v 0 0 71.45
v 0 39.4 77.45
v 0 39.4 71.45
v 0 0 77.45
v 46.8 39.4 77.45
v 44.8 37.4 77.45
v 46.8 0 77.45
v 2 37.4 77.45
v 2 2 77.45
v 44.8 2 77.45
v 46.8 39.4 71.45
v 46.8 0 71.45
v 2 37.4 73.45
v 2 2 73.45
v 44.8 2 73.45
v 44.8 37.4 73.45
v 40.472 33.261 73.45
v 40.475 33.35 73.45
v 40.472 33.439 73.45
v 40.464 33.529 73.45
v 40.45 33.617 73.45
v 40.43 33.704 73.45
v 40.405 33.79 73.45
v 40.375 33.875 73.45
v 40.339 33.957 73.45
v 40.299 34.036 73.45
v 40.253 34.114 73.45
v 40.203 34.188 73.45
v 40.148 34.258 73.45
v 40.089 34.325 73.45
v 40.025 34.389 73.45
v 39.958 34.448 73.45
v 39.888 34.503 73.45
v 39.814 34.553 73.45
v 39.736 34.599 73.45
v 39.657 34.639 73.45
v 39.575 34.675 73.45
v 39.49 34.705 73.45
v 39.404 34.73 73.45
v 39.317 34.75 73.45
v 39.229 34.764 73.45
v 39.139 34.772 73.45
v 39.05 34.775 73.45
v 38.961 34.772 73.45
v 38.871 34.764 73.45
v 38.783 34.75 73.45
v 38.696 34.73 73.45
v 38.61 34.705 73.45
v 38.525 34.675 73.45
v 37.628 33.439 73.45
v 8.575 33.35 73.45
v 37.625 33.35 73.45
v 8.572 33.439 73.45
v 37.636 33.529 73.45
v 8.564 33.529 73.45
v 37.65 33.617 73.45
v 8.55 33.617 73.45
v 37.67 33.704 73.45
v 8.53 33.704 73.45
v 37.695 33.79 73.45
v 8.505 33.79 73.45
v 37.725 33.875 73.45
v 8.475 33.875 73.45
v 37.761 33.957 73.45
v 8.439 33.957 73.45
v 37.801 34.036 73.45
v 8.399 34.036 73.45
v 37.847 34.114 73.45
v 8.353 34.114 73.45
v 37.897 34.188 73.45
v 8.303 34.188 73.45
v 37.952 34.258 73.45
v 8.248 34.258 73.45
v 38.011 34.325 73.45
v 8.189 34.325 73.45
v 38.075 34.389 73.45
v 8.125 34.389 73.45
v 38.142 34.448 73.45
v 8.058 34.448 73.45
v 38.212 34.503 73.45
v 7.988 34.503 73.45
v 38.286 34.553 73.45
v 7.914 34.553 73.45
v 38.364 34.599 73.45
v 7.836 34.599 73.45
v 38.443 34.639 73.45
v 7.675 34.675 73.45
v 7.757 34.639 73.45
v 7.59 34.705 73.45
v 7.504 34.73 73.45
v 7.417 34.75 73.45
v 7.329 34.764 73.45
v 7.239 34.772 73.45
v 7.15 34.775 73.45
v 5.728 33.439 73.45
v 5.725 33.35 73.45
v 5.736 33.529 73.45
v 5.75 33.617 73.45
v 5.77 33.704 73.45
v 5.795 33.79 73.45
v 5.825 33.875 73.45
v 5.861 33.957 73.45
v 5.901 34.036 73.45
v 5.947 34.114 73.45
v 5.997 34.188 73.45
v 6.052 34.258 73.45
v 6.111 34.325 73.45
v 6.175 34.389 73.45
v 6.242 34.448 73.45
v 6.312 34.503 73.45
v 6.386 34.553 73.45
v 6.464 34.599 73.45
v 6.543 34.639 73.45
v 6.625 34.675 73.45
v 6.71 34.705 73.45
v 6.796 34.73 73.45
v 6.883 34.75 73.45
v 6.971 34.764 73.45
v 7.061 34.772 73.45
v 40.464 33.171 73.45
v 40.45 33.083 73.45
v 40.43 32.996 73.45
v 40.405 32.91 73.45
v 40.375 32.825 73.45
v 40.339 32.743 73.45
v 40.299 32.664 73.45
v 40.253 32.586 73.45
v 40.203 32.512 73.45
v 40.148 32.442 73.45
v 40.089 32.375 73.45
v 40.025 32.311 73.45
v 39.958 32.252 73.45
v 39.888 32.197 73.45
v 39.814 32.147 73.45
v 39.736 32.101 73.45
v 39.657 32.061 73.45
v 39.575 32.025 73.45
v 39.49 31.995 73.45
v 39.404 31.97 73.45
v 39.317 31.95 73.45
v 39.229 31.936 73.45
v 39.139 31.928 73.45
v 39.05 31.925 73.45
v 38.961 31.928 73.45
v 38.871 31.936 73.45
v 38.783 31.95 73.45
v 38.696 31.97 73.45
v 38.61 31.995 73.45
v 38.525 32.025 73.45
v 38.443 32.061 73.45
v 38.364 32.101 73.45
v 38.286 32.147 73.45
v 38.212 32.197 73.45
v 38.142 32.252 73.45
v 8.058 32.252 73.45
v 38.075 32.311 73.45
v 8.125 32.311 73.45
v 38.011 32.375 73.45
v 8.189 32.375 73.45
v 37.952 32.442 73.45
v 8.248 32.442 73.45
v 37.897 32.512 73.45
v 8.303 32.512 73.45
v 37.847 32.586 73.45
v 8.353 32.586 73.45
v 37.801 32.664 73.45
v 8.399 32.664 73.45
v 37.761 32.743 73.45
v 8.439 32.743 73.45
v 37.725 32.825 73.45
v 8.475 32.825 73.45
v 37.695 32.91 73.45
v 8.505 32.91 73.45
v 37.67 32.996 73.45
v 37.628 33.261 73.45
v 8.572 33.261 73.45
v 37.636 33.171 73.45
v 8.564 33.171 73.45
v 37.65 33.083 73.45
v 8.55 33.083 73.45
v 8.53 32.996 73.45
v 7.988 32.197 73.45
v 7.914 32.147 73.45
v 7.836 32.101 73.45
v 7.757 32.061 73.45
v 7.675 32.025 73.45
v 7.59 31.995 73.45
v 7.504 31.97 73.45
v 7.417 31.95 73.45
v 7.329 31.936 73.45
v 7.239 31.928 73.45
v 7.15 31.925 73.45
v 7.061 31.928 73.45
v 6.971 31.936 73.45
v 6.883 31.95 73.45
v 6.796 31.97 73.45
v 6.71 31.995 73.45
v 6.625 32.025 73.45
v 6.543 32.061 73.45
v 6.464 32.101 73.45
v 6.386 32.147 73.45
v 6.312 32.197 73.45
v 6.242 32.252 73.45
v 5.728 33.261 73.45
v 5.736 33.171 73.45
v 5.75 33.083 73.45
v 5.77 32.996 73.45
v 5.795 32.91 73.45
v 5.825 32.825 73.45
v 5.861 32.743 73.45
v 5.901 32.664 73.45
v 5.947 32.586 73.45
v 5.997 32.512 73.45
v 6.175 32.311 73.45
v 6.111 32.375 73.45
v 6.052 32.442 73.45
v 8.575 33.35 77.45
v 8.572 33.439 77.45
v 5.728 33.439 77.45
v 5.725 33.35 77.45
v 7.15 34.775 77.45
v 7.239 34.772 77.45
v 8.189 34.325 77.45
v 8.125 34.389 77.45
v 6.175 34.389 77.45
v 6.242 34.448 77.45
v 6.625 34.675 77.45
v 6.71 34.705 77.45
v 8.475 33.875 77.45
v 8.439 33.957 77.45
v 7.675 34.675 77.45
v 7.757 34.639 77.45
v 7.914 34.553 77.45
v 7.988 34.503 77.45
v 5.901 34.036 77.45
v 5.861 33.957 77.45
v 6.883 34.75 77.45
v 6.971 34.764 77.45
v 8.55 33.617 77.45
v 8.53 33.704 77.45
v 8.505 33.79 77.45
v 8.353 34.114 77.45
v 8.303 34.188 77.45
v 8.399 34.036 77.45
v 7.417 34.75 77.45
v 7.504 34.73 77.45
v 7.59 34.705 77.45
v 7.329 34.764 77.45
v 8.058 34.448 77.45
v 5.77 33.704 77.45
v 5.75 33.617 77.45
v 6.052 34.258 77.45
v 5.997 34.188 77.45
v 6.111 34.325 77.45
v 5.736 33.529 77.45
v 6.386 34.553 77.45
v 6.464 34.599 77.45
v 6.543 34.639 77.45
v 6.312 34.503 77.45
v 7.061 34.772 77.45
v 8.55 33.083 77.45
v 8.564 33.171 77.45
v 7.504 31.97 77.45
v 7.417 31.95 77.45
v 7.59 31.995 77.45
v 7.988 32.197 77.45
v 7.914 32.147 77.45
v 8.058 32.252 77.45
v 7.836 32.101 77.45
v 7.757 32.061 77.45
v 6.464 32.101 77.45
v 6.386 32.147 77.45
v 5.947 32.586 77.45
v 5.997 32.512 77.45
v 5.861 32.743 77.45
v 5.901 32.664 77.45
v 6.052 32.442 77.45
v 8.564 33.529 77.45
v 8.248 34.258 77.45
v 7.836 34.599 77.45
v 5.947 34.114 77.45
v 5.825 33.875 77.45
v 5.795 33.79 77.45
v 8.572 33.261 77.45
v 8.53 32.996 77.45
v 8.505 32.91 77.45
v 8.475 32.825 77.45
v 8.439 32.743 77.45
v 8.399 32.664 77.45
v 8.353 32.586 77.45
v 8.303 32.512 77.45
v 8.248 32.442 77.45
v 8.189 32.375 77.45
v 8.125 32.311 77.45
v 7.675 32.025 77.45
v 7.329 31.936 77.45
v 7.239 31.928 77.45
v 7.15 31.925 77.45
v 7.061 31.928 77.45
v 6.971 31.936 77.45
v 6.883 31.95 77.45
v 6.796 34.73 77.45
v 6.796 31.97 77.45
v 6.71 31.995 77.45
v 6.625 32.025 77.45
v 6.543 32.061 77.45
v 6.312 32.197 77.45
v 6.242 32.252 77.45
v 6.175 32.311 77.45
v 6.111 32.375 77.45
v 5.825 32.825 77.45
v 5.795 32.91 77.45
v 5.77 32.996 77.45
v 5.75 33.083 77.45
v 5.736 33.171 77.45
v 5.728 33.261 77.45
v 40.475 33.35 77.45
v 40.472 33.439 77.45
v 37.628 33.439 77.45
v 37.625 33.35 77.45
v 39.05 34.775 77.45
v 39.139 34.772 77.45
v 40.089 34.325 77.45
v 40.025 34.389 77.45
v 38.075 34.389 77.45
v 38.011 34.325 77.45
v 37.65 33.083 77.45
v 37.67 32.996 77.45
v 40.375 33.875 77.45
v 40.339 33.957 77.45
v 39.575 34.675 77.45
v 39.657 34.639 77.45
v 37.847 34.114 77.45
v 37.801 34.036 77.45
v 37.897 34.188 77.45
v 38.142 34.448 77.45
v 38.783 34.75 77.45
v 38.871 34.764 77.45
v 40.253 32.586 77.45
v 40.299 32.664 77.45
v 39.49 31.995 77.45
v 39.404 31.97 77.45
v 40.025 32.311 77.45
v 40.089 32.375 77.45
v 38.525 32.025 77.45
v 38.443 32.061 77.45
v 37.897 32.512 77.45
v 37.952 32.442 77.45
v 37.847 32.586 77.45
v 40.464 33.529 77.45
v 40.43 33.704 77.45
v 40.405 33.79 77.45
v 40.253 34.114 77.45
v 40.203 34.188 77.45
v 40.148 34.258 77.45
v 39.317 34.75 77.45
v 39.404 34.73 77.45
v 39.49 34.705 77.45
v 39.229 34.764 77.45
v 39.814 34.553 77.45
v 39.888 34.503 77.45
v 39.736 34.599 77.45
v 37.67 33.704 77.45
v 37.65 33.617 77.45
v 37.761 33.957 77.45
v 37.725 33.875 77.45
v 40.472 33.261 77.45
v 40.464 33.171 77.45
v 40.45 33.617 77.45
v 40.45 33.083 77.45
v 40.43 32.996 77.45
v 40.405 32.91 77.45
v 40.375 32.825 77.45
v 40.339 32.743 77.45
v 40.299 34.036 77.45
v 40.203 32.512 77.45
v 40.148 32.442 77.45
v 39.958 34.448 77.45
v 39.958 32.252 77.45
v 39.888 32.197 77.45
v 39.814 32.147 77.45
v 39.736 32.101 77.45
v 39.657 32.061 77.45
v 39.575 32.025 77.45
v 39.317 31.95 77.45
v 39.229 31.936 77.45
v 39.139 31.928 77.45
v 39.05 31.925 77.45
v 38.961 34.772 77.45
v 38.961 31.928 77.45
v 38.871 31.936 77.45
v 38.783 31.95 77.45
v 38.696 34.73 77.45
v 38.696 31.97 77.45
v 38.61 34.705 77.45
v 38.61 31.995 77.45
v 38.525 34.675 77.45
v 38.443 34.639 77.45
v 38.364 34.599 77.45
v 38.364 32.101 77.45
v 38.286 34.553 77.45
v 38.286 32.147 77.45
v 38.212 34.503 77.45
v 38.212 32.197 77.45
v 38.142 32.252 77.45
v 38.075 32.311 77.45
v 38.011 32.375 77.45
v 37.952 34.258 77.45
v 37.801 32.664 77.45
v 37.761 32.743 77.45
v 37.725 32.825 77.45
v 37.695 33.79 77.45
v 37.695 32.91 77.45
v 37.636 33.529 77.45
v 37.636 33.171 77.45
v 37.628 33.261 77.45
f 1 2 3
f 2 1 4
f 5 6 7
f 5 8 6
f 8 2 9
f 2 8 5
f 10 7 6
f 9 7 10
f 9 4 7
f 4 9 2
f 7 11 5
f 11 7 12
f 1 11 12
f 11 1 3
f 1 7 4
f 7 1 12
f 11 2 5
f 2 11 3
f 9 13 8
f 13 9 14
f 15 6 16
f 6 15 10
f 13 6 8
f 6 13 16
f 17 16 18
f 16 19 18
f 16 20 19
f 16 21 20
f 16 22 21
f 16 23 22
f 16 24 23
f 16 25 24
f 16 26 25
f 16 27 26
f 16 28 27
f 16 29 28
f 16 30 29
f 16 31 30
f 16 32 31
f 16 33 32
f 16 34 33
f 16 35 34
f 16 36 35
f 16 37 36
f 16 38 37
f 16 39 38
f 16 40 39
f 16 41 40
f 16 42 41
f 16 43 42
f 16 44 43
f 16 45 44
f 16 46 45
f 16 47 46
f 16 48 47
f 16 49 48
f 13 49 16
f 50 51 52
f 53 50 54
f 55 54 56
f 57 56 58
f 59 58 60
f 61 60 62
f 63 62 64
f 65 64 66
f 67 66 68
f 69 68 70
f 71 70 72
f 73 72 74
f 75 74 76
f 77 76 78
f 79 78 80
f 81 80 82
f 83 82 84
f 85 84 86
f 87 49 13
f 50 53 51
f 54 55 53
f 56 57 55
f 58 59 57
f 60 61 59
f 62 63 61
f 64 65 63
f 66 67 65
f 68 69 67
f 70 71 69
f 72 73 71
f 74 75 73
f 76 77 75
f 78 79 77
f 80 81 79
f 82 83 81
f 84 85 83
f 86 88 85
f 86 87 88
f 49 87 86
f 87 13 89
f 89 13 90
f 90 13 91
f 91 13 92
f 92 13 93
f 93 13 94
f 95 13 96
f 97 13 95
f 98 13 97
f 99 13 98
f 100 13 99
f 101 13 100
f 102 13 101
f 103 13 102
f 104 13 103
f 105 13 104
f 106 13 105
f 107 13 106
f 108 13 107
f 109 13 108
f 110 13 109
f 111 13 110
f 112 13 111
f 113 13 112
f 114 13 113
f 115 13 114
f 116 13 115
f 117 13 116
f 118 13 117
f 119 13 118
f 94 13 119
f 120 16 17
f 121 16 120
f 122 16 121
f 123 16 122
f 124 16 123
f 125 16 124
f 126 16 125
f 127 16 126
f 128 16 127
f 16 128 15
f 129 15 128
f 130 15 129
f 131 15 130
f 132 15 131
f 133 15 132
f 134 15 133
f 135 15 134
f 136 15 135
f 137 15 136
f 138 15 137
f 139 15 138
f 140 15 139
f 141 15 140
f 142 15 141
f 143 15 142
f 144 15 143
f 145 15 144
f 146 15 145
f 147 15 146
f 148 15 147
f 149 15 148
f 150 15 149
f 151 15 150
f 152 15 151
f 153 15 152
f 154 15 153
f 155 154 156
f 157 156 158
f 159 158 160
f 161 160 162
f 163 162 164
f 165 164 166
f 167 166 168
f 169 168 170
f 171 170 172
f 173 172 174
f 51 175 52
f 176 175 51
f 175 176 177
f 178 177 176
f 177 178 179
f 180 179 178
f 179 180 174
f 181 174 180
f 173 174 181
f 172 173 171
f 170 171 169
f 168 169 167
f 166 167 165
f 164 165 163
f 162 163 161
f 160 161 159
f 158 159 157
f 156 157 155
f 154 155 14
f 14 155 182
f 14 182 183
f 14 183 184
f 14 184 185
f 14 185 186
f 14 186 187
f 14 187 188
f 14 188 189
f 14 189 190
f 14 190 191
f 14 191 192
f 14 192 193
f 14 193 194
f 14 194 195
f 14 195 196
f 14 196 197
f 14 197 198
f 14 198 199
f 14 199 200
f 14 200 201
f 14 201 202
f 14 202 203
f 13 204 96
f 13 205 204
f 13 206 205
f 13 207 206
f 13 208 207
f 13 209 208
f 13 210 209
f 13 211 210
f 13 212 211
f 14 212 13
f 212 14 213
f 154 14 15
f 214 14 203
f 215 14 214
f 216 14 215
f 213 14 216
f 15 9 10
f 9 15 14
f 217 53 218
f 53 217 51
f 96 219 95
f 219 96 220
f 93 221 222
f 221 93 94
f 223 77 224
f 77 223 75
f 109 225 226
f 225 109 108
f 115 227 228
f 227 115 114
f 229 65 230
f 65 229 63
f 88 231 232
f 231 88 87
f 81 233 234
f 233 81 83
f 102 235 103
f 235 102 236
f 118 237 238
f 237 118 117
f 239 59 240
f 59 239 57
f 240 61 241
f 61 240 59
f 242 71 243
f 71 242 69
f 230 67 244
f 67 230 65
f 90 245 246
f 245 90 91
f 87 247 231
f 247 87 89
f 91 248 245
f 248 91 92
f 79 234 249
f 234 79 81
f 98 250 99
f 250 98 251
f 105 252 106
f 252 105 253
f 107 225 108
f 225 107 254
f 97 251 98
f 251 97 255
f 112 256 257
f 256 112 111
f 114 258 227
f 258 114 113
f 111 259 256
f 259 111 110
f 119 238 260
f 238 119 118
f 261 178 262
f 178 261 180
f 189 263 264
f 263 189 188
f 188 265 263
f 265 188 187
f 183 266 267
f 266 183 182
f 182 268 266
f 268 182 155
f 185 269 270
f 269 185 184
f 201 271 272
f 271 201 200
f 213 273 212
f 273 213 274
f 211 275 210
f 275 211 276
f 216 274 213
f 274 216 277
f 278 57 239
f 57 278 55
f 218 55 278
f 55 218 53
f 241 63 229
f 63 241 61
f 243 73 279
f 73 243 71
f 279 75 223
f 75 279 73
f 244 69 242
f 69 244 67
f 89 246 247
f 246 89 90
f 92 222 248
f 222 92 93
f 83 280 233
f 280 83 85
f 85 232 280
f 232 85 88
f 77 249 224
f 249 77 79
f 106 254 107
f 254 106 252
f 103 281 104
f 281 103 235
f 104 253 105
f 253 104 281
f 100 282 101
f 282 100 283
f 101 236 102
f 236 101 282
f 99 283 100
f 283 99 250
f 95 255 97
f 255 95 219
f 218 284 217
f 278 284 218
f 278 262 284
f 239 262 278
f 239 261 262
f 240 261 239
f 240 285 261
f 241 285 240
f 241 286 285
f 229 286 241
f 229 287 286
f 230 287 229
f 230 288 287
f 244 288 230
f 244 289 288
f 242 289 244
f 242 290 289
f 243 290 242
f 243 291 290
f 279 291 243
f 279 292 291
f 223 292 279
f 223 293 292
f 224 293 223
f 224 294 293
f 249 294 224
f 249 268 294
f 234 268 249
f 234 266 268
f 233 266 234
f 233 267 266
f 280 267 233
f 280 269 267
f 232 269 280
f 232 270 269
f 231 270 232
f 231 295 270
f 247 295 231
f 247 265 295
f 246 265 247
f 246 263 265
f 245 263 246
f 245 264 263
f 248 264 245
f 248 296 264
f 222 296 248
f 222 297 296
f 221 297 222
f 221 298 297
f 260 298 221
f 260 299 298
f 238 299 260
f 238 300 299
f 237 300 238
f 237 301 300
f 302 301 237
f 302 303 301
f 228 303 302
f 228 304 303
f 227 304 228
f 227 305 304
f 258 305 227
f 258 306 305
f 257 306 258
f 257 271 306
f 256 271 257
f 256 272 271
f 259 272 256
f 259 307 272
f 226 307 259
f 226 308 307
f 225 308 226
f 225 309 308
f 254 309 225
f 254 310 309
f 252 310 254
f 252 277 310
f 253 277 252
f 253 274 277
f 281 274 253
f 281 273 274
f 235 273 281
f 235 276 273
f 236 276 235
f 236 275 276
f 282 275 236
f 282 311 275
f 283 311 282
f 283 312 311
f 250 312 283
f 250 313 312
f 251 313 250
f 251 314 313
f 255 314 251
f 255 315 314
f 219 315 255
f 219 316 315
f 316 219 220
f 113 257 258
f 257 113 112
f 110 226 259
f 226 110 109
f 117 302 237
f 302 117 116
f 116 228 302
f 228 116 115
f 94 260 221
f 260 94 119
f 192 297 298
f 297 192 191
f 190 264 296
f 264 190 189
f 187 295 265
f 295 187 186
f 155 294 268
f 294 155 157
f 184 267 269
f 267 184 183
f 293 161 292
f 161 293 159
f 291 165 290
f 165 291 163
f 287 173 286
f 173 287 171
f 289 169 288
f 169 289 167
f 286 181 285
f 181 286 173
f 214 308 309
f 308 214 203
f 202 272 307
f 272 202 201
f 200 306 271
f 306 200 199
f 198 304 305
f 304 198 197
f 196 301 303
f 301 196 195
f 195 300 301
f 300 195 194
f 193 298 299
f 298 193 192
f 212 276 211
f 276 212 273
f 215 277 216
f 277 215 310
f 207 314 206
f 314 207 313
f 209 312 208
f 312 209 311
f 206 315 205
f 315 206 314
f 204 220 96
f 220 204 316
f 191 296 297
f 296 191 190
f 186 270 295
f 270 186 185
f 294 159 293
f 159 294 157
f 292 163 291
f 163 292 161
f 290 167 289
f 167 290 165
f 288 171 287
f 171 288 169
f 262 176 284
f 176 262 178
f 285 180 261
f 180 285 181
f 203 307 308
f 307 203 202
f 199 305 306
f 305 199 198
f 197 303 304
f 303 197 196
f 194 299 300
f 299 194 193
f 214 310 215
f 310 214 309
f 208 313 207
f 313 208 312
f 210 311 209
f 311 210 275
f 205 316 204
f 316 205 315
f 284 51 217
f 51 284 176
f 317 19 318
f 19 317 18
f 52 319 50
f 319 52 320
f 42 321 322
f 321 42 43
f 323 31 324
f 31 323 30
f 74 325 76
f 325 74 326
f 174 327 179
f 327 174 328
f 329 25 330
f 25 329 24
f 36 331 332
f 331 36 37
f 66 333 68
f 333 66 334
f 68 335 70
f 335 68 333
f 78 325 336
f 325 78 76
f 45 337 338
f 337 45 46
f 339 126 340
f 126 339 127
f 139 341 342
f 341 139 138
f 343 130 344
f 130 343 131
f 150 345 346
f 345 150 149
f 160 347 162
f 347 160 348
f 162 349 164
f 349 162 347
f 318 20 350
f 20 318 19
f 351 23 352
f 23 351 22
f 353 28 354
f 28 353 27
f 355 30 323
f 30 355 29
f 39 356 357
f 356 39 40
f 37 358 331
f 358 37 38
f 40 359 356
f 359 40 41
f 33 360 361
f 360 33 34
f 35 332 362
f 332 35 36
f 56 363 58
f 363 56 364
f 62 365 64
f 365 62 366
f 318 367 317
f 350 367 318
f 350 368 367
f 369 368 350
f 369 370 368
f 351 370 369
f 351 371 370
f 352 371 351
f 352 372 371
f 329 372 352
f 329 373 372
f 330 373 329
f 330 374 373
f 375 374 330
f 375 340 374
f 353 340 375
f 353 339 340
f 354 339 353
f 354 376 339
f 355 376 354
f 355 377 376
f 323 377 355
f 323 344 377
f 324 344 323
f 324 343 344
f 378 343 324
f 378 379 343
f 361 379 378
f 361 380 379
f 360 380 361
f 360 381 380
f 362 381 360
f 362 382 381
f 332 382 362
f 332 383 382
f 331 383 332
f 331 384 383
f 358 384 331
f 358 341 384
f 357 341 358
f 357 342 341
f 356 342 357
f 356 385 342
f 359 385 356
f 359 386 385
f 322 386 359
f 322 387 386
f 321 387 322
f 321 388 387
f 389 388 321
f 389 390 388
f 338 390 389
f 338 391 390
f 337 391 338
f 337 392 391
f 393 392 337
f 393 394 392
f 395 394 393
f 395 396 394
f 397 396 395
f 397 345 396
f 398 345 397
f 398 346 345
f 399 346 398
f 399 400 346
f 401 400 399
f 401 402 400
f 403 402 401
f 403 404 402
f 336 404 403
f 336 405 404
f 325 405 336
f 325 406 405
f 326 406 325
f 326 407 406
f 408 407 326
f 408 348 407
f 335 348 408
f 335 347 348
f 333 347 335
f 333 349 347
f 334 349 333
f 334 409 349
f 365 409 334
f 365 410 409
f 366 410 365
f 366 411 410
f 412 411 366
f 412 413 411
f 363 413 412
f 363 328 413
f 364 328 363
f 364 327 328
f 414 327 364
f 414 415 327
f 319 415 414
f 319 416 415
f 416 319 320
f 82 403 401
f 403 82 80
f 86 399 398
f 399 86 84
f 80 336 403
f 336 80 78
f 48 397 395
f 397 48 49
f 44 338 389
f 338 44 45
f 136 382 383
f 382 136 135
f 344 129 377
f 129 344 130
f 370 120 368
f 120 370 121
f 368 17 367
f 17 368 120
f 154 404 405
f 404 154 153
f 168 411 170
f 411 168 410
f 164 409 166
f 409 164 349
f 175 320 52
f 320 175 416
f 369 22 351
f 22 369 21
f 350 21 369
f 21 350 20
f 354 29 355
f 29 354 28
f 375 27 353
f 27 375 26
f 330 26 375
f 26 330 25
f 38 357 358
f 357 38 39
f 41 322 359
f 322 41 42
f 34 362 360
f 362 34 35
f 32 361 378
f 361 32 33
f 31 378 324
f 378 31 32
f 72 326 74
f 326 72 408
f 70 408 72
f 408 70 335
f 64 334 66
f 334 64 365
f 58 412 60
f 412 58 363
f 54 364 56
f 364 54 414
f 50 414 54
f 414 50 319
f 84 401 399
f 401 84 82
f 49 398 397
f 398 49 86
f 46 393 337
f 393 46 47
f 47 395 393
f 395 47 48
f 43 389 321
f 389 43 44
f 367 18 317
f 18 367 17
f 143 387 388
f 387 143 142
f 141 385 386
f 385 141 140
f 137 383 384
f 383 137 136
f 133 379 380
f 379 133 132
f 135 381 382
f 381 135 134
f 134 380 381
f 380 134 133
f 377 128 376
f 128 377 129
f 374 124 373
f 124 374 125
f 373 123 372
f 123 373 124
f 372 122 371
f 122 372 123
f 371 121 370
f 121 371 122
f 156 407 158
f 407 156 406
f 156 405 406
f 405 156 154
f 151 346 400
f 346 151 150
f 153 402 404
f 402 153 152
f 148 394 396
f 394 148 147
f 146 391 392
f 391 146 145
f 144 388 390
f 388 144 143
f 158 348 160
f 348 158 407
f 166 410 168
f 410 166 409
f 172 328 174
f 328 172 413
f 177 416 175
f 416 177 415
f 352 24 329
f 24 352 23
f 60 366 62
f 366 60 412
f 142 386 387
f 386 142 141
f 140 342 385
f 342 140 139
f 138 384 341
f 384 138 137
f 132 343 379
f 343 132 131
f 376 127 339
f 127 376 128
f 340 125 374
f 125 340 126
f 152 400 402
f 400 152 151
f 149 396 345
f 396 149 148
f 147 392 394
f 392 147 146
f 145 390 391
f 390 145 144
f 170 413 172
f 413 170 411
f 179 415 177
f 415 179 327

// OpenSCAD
// file: funcArduinoUNO.scad
module funcArduinoUNO(res=10,amais=2.6){
    // ----- ----- ----- Declaração de Variáveis ----- ----- ----- //
    folga1=0.125;

    pcbx=41.8;
    pcbx1=66.5;
    pcbx2=68.65;
    pcby1=2.9;
    pcby2=4.65;
    pcby3=53.55-14.95;
    pcby4=53.55-13.3;
    pcby5=53.55;
    pcbz=1.6;
    pcbr=3.45/2;
    pcbalt=1.6;
    pbcentre=(35+28.8)/2;
    pcbfuro1=3.1+pcbr;

    conx=16.35;
    cony=12.1;
    conz=10.7;
    tCx=-7.8;
    tCy=28.4+3.1;

    alix=14;
    aliy=8.9;
    aliz=11;
    tAx=-4.65;
    tAy=3.1;

    pin1x=20.75;
    pin2x=15.6;
    pin3x=25.8;
    pin4x=20.75;
    piny=2.55;
    pinz=8.55;
    tpin1x=26.7;
    tpin2x=tpin1x+pin1x+2.05;
    tpin3x=18;
    tpin4x=tpin3x+pin3x+0.9;
    tpinbaixoy=1.3;
    tpinaltoy=pcby5-1-piny;

    conectDisspx=9;
    conectDisspy=9;
    conectDisspz=4.55;
    tDsx=2;
    tDsy=2.75;

    conectEDSx=2.35;
    conectEDSy=7.2;
    conectEDSz=2.6;
    tEDSx=2.55;

    conectStepx=9.1;
    conectStepy=9.85;
    conectStepz=5.7;
    tSx=pcbx-conectStepx-0.6;

    conectStep123x=1.45;
    conectStep123y=3.25;
    conectStep123z=1.25;
    tS1x=tSx+conectStepx/2-(3*conectStep123x+2)/2;
    tS2x=tS1x+1+conectStep123x;
    tS3x=tS2x+1+conectStep123x;

    fio06=0.6;
    fioz=5.75;

    rcx=6.75;
    rcy=6.55;
    rcz=2;
    trcx=2.35;
    trcy=pcby5-rcy-0.7;

    rbr=3/2;
    rbalt=1;
    trbx=trcx+(rcx-6.25)+6.25/2;
    trby=trcy+rcy/2;

    ISCPx=5;
    ISCPy=7.35;
    ISCPz=2.6;
    tISCPx=pcbx2-ISCPx-0.8;
    tISCPy=24.4;

    oscr=3.5/2;
    oscalt=4;
    oscx=4.45;
    oscy=11.3;
    oscz=1.1;
    oschull=10-3.5;
    toscx=pcbx2-oscx-13.4;
    toscy=32.35-oscy+tpinbaixoy;

    osc2r=3.5/2;
    osc2alt=4;
    osc2x=11.3;
    osc2y=4.45;
    osc2z=1.1;
    osc2hull=10-3.5;
    tosc2x=pcbx2-osc2x-46.1;
    tosc2y=pcby5-osc2y-12.9;

    capr=6.3/2;
    capalt=6;
    cap2alt=6-4.1;
    tcapx=pcbx2-4*capr-43.65-0.6;
    tcap2x=pcbx2-2*capr-43.65;
    tcapy=6.05;

    // ----- ----- ----- Declaração de Variáveis ----- ----- ----- //
    module arrayPins(pit,alt,l,n){
        for(i=[0:1:n-1]){
            translate([i*(l/n)+(l/n)/2-pit/2,0,0])cube([pit,pit,alt]);
        }
    }

    // ----- ----- ----- MAIN ----- ----- ----- //
    // PCB
    difference(){
        linear_extrude(pcbz+amais)polygon(points=[[    0,    0],
                                                  [pcbx1,    0],
                                                  [pcbx1,pcby1],
                                                  [pcbx2,pcby2],
                                                  [pcbx2,pcby3],
                                                  [pcbx1,pcby4],
                                                  [pcbx1,pcby5],
                                                  [    0,pcby5]]);
        #translate([12.65+pcbr,0.65+pcbr,0])cylinder(pcbalt+amais,pcbr,pcbr,$fn=res);
        #translate([13.85+pcbr,pcby5-0.7-pcbr,0])cylinder(pcbalt+amais,pcbr,pcbr,$fn=res);
        #translate([pcbx2-0.35-pcbr,5.8+pcbr,0])cylinder(pcbalt+amais,pcbr,pcbr,$fn=res);
        #translate([pcbx2-0.4-pcbr,pcby5-16.3-pcbr,0])cylinder(pcbalt+amais,pcbr,pcbr,$fn=res);
    }
    // Periféricos de Comunicação/Conexão e Alimentação
    translate([tCx,tCy,pcbz+amais])cube([conx,cony,conz]);
    translate([tAx,tAy,pcbz+amais])cube([alix,aliy,aliz]);
    // Pinos Macho e Fêmea
    translate([tpin1x,tpinbaixoy,pcbz+amais])cube([pin1x,piny,pinz]);
    translate([tpin1x,tpinbaixoy+piny+0.5,pcbz+amais])cube([pin1x,piny,conectEDSz]);
    translate([tpin1x,tpinbaixoy+piny+0.5+piny/2-fio06/2,pcbz+amais+conectEDSz])arrayPins(fio06,fioz,pin1x,8);
    translate([tpin2x,tpinbaixoy,pcbz+amais])cube([pin2x,piny,pinz]);
    translate([tpin2x,tpinbaixoy+piny+0.5,pcbz+amais])cube([pin2x,piny,conectEDSz]);
    translate([tpin2x,tpinbaixoy+piny+0.5+piny/2-fio06/2,pcbz+amais+conectEDSz])arrayPins(fio06,fioz,pin2x,6);
    translate([tpin3x,tpinaltoy,pcbz+amais])cube([pin3x,piny,pinz]);
    translate([tpin3x,tpinaltoy-piny-0.5,pcbz+amais])cube([pin3x,piny,conectEDSz]);
    translate([tpin3x,tpinaltoy-piny-0.5+piny/2-fio06/2,pcbz+amais+conectEDSz])arrayPins(fio06,fioz,pin3x,10);
    translate([tpin4x,tpinaltoy,pcbz+amais])cube([pin4x,piny,pinz]);
    translate([tpin4x,tpinaltoy-piny-0.5,pcbz+amais])cube([pin4x,piny,conectEDSz]);
    translate([tpin4x,tpinaltoy-piny-0.5+piny/2-fio06/2,pcbz+amais+conectEDSz])arrayPins(fio06,fioz,pin4x,8);
    // Botão de Reset
    translate([trcx,trcy,pcbz+amais])cube([rcx,rcy,rcz]);
    translate([trbx,trby,pcbz+amais+rcz])cylinder(rbalt,rbr,rbr,$fn=res);
    // Conexão ISCP
    translate([tISCPx,tISCPy,pcbz+amais])cube([ISCPx,ISCPy,ISCPz]);
    translate([tISCPx,tISCPy+(ISCPy/3)/2-fio06/2,pcbz+amais+ISCPz])arrayPins(fio06,fioz,ISCPx,2);
    translate([tISCPx,tISCPy+ISCPy/3+(ISCPy/3)/2-fio06/2,pcbz+amais+ISCPz])arrayPins(fio06,fioz,ISCPx,2);
    translate([tISCPx,tISCPy+ISCPy/3+ISCPy/3+(ISCPy/3)/2-fio06/2,pcbz+amais+ISCPz])arrayPins(fio06,fioz,ISCPx,2);
    // Osciladores 1 e 2
    translate([toscx,toscy,pcbz+amais])cube([oscx,oscy,oscz]);
    hull(){
        translate([toscx+oscx/2,toscy+oscy/2-oschull/2,pcbz+amais])cylinder(oscalt,oscr,oscr,$fn=res);
        translate([toscx+oscx/2,toscy+oscy/2+oschull/2,pcbz+amais])cylinder(oscalt,oscr,oscr,$fn=res);
    }
    translate([tosc2x,tosc2y,pcbz+amais])cube([osc2x,osc2y,osc2z]);
    hull(){
        translate([tosc2x+osc2x/2-oschull/2,tosc2y+osc2y/2,pcbz+amais])cylinder(oscalt,oscr,oscr,$fn=res);
        translate([tosc2x+osc2x/2+oschull/2,tosc2y+osc2y/2,pcbz+amais])cylinder(oscalt,oscr,oscr,$fn=res);
    }
    // Capacitores
    translate([tcapx,tcapy,pcbz+amais])cube([2*capr,2*capr,cap2alt]);
    translate([tcap2x,tcapy,pcbz+amais])cube([2*capr,2*capr,cap2alt]);
    translate([tcapx+capr,tcapy+capr,pcbz+amais])cylinder(capalt,capr,capr,$fn=res);
    translate([tcap2x+capr,tcapy+capr,pcbz+amais])cylinder(capalt,capr,capr,$fn=res);
}

funcArduinoUNO(100);
// file: funcBaseEL3DArduinoUNO.scad
use <funcArduinoUNO.scad>
module funcBaseEL3DArduinoUNO(res=100,amais2=2.6){
    // ----- ----- ----- Declaração de Variáveis ----- ----- ----- //
    folga1=0.125;
    folga10=1;

    pcbx=41.8;
    pcbx1=66.5;
    pcbx2=68.65;
    pcby1=2.9;
    pcby2=4.65;
    pcby3=53.55-14.95;
    pcby4=53.55-13.3;
    pcby5=53.55;
    pcbz=1.6;
    pcbr=3.45/2;
    pcbalt=1.6;
    pbcentre=(35+28.8)/2;
    pcbfuro1=3.1+pcbr;

    conx=16.35;
    cony=12.1;
    conz=10.7;
    tCx=-7.8;
    tCy=28.4+3.1;

    alix=14;
    aliy=8.9;
    aliz=11;
    tAx=-4.65;
    tAy=3.1;

    pin1x=20.75;
    pin2x=15.6;
    pin3x=25.8;
    pin4x=20.75;
    piny=2.55;
    pinz=8.55;
    tpin1x=26.7;
    tpin2x=tpin1x+pin1x+2.05;
    tpin3x=18;
    tpin4x=tpin3x+pin3x+0.9;
    tpinbaixoy=1.3;
    tpinaltoy=pcby5-1-piny;

    conectDisspx=9;
    conectDisspy=9;
    conectDisspz=4.55;
    tDsx=2;
    tDsy=2.75;

    conectEDSx=2.35;
    conectEDSy=7.2;
    conectEDSz=2.6;
    tEDSx=2.55;

    conectStepx=9.1;
    conectStepy=9.85;
    conectStepz=5.7;
    tSx=pcbx-conectStepx-0.6;

    conectStep123x=1.45;
    conectStep123y=3.25;
    conectStep123z=1.25;
    tS1x=tSx+conectStepx/2-(3*conectStep123x+2)/2;
    tS2x=tS1x+1+conectStep123x;
    tS3x=tS2x+1+conectStep123x;

    fio06=0.6;
    fioz=5.75;

    rcx=6.75;
    rcy=6.55;
    rcz=2;
    trcx=2.35;
    trcy=pcby5-rcy-0.7;

    rbr=3/2;
    rbalt=1;
    trbx=trcx+(rcx-6.25)+6.25/2;
    trby=trcy+rcy/2;

    ISCPx=5;
    ISCPy=7.35;
    ISCPz=2.6;
    tISCPx=pcbx2-ISCPx-0.8;
    tISCPy=24.4;

    oscr=3.5/2;
    oscalt=4;
    oscx=4.45;
    oscy=11.3;
    oscz=1.1;
    oschull=10-3.5;
    toscx=pcbx2-oscx-13.4;
    toscy=32.35-oscy+tpinbaixoy;

    osc2r=3.5/2;
    osc2alt=4;
    osc2x=11.3;
    osc2y=4.45;
    osc2z=1.1;
    osc2hull=10-3.5;
    tosc2x=pcbx2-osc2x-46.1;
    tosc2y=pcby5-osc2y-12.9;

    capr=6.3/2;
    capalt=6;
    cap2alt=6-4.1;
    tcapx=pcbx2-4*capr-43.65-0.6;
    tcap2x=pcbx2-2*capr-43.65;
    tcapy=6.05;

    espParede=2;
    baseARDx=pcbx2+2*folga10;
    baseARDy=pcby5+2*folga10;
    baseARDz=2.4;

    // ----- ----- ----- Declaração de Variáveis ----- ----- ----- //
    module arrayPins(pit,alt,l,n){
        for(i=[0:1:n-1]){
            translate([i*(l/n)+(l/n)/2-pit/2,0,0])cube([pit,pit,alt]);
        }
    }
    
    //translate([espParede+folga10,espParede+folga10,espParede])funcArduinoUNO(res,amais2);

    // ----- ----- ----- MAIN ----- ----- ----- //

    // Base do Arduino
    difference(){
        translate([-folga1,-folga1,0])
        cube([baseARDx+2*espParede+2*folga1,baseARDy+2*espParede+2*folga1,baseARDz+espParede]);
        #translate([espParede,espParede,espParede])cube([baseARDx,baseARDy,baseARDz]);
    }
    // Encaixe Cilíndrico do Arduino
    translate([espParede+folga10,espParede+folga10,espParede]){
        translate([12.65+pcbr,0.65+pcbr,0])cylinder(pcbalt+amais2+espParede,pcbr-folga1,pcbr-folga1,$fn=res);
        translate([13.85+pcbr,pcby5-0.7-pcbr,0])cylinder(pcbalt+amais2+espParede,pcbr-folga1,pcbr-folga1,$fn=res);
        translate([pcbx2-0.35-pcbr,5.8+pcbr,0])cylinder(pcbalt+amais2+espParede,pcbr-folga1,pcbr-folga1,$fn=res);
        translate([pcbx2-0.4-pcbr,pcby5-16.3-pcbr,0])cylinder(pcbalt+amais2+espParede,pcbr-folga1,pcbr-folga1,$fn=res);
    }
} 

funcBaseEL3DArduinoUNO();
// file: funcWcmcuStepperMotor.scad
module funcWcmcuStepperMotor(res=10,amais=2){
    // ----- ----- ----- Declaração de Variáveis ----- ----- ----- //
    folga1=0.125;

    pcbx=41.8;
    pcby=34.4;
    pcbz=1.6;
    pcbr=(35-28.8)/4;
    pcbalt=1.6;
    pbcentre=(35+28.8)/2;
    pcbfuro1=3.1+pcbr;
    pcbfuro2=pcby-2-pcbr;

    conectMotorx=12.4;
    conectMotory=7;
    conectMotorz=5.5;
    tMx=28.2;
    tMy=-0.65;

    conectAlix=10.5;
    conectAliy=2.35;
    conectAliz=14.15+10.5-pcbz;
    tAx=3.5;
    tAy=1.4;

    conectDRVx=20.9;
    conectDRVy=15.3;
    conectDRVz=14.25;
    tDRVx=7.25;
    tDRVy=6.55;

    conectDisspx=9;
    conectDisspy=9;
    conectDisspz=4.55;
    tDsx=2;
    tDsy=2.75;
    tDsz=conectDRVz;

    conectEDSx=2.35;
    conectEDSy=7.2;
    conectEDSz=2.6;
    tEDSx=2.55;
    tEDSy=pcby-14.3-conectEDSy;

    //conectEDSx=2.35;
    //conectEDSy=7.2;
    //conectEDSz=2.6;
    //tEDSx=2.55;
    //tEDSy=pcby-14.3-conectEDSy;

    conectStepx=9.1;
    conectStepy=9.85;
    conectStepz=5.7;
    tSx=pcbx-conectStepx-0.6;
    tSy=pcby-12.8-conectStepy;

    conectStep123x=1.45;
    conectStep123y=3.25;
    conectStep123z=1.25;
    tS1x=tSx+conectStepx/2-(3*conectStep123x+2)/2;
    tS1y=tSy+conectStepy/2-conectStep123y/2;
    tS2x=tS1x+1+conectStep123x;
    tS2y=tSy+conectStepy/2-conectStep123y/2;
    tS3x=tS2x+1+conectStep123x;
    tS3y=tSy+conectStepy/2-conectStep123y/2;

    fio06=0.6;
    fioz=5.75;

    // ----- ----- ----- MAIN ----- ----- ----- //
    difference(){
        cube([pcbx,pcby,pcbz+amais]);
        #translate([pcbfuro1,pcbfuro2,0])cylinder(pcbalt+amais,pcbr,pcbr,$fn=res);
        #translate([pcbfuro1+pbcentre,pcbfuro2,0])cylinder(pcbalt+amais,pcbr,pcbr,$fn=res);
    }

    translate([tMx,tMy,pcbz+amais])cube([conectMotorx,conectMotory,conectMotorz]);
    translate([tAx,tAy,pcbz+amais])cube([conectAlix,conectAliy,conectAliz]);
    translate([tDRVx,tDRVy,pcbz+amais])cube([conectDRVx,conectDRVy,conectDRVz]);
    translate([tDRVx+tDsx,tDRVy+tDsy,tDsz+pcbz+amais])cube([conectDisspx,conectDisspy,conectDisspz]);
    translate([tEDSx,tEDSy,pcbz+amais])cube([conectEDSx,conectEDSy,conectEDSz]);
    translate([tSx,tSy,pcbz+amais])cube([conectStepx,conectStepy,conectStepz]);
    translate([tS1x,tS1y,conectStepz+pcbz+amais])cube([conectStep123x,conectStep123y,conectStep123z]);
    translate([tS2x,tS2y,conectStepz+pcbz+amais])cube([conectStep123x,conectStep123y,conectStep123z]);
    translate([tS3x,tS3y,conectStepz+pcbz+amais])cube([conectStep123x,conectStep123y,conectStep123z]);
    translate([tEDSx+conectEDSx/2-fio06/2,tEDSy+(conectEDSy/3)/2-fio06/2,conectEDSz+pcbz+amais])cube([fio06,fio06,fioz]);
    translate([tEDSx+conectEDSx/2-fio06/2,tEDSy+(conectEDSy/3)/2-fio06/2+conectEDSy/3,conectEDSz+pcbz+amais])cube([fio06,fio06,fioz]);
    translate([tEDSx+conectEDSx/2-fio06/2,tEDSy+(conectEDSy/3)/2-fio06/2+conectEDSy/3+conectEDSy/3,conectEDSz+pcbz+amais])cube([fio06,fio06,fioz]);
}

funcWcmcuStepperMotor();
// main file
// ----- ----- ----- Declaração de Variáveis ----- ----- ----- //
res=100;
folga1=0.125;
folga10=0.5;

amais=2; //0 ou 2

pcbx=41.8;
pcby=34.4;
pcbz=1.6;

//pcbx=41.8;
pcbx1=66.5;
pcbx2=68.65;
pcby1=2.9;
pcby2=4.65;
pcby3=53.55-14.95;
pcby4=53.55-13.3;
pcby5=53.55;
//pcbz=1.6;
//pcbr=3.45/2;
//pcbalt=1.6;
//pbcentre=(35+28.8)/2;
//pcbfuro1=3.1+pcbr;

espParede=2;
basex=pcbx+2*folga10;
basey=pcby+2*folga10;
basez=2*espParede;
baseARDx=pcbx2+2*folga10;
baseARDy=pcby5+2*folga10;
baseARDz=2.4;

pcbr=(35-28.8)/4-folga1;
pcbalt=2*espParede;
pbcentre=(35+28.8)/2;
pcbfuro1=3.1+(35-28.8)/4;
pcbfuro2=pcby-2-(35-28.8)/4;

/*
conectMotorx=12.4;
conectMotory=7;
conectMotorz=5.5;
tMx=28.2;
tMy=-0.65;

conectAlix=10.5;
conectAliy=2.35;
conectAliz=14.15+10.5-pcbz;
tAx=3.5;
tAy=1.4;

conectDRVx=20.9;
conectDRVy=15.3;
conectDRVz=14.25;
tDRVx=7.25;
tDRVy=6.55;

conectDisspx=9;
conectDisspy=9;
conectDisspz=4.55;
tDsx=2;
tDsy=2.75;
tDsz=conectDRVz;

conectEDSx=2.35;
conectEDSy=7.2;
conectEDSz=2.6;
tEDSx=2.55;
tEDSy=pcby-14.3-conectEDSy;

//conectEDSx=2.35;
//conectEDSy=7.2;
//conectEDSz=2.6;
//tEDSx=2.55;
//tEDSy=pcby-14.3-conectEDSy;

conectStepx=9.1;
conectStepy=9.85;
conectStepz=5.7;
tSx=pcbx-conectStepx-0.6;
tSy=pcby-12.8-conectStepy;

conectStep123x=1.45;
conectStep123y=3.25;
conectStep123z=1.25;
tS1x=tSx+conectStepx/2-(3*conectStep123x+2)/2;
tS1y=tSy+conectStepy/2-conectStep123y/2;
tS2x=tS1x+1+conectStep123x;
tS2y=tSy+conectStepy/2-conectStep123y/2;
tS3x=tS2x+1+conectStep123x;
tS3y=tSy+conectStepy/2-conectStep123y/2;

fio06=0.6;
fioz=5.75;
*/

peDx=3;
peDy=3;
peDz=14.15+10.5-pcbz+pcbz+amais+espParede+14.15/2;
fixbasey=11;

// ----- ----- ----- Declaração de Funções ----- ----- ----- //
use <funcWcmcuStepperMotor.scad>
// Replica do Modulo do Motor de Passo
//translate([espParede+folga10,espParede+folga10,espParede])funcWcmcuStepperMotor(res,amais);
use <funcBaseEL3DArduinoUNO.scad>
// Replica do Modulo do Motor de Passo
//translate([20+basex+2*espParede+2*folga1,0,0])
//translate([espParede+folga10,espParede+folga10,espParede])funcBaseEL3DArduinoUNO(res);
use <funcoes_GFCx.scad>
//funcao_2d_array_cilindros(r,d,h,nx,ny,geo,res,nome="Conjunto 1")

// ----- ----- ----- MAIN ----- ----- ----- //
/*
// Suporte de Baixo (Controle de X)
// Base
difference(){
    translate([-folga1,-folga1,0])
    cube([basex+2*espParede+2*folga1,basey+2*espParede+2*folga1,basez+espParede]);
    #translate([espParede,espParede,espParede])cube([basex,basey,basez]);
}
// Encaixe Cilíndrico
translate([espParede+folga10,espParede+folga10,espParede]){
    translate([pcbfuro1,pcbfuro2,0])cylinder(pcbalt,pcbr,pcbr,$fn=res);
    translate([pcbfuro1+pbcentre,pcbfuro2,0])cylinder(pcbalt,pcbr,pcbr,$fn=res);
}
// Sustentação
translate([-peDx-folga1,-folga1,0])cube([peDx,peDy,peDz+espParede]);
translate([-peDx-folga1,-peDy-folga1,0])cube([peDx,peDy,peDz+espParede]);
translate([-folga1,-peDy-folga1,0])cube([peDx,peDy,peDz+espParede]);
translate([-folga1,-folga1,peDz-peDx])cube([peDx,peDx,peDx]);
//-------------------------------------------------------------------------------------------------------
translate([-peDx-folga1,basey+2*espParede-peDy+folga1,0])cube([peDx,peDy,peDz+espParede]);
translate([-peDx-folga1,basey+2*espParede+folga1,0])cube([peDx,peDy,peDz+espParede]);
translate([0-folga1,basey+2*espParede+folga1,0])cube([peDx,peDy,peDz+espParede]);
translate([0-folga1,basey+2*espParede-peDy+folga1,peDz-peDx])cube([peDx,peDx,peDx]);
//-------------------------------------------------------------------------------------------------------
translate([basex+2*espParede+folga1,-folga1,0])cube([peDx,peDy,peDz+espParede]);
translate([basex+2*espParede+folga1,-peDy-folga1,0])cube([peDx,peDy,peDz+espParede]);
translate([-peDx+basex+2*espParede+folga1,-peDy-folga1,0])cube([peDx,peDy,peDz+espParede]);
translate([-peDx+basex+2*espParede+folga1,-folga1,peDz-peDx])cube([peDx,peDx,peDx]);
//-------------------------------------------------------------------------------------------------------
translate([basex+2*espParede+folga1,basey+2*espParede-peDy+folga1,0])cube([peDx,peDy,peDz+espParede]);
translate([basex+2*espParede+folga1,basey+2*espParede+folga1,0])cube([peDx,peDy,peDz+espParede]);
translate([basex+2*espParede-peDx+folga1,basey+2*espParede+folga1,0])cube([peDx,peDy,peDz+espParede]);
translate([basex+2*espParede-peDx+folga1,basey+2*espParede-peDy+folga1,peDz-peDx])cube([peDx,peDx,peDx]);

// Suporte de Meio (Controle de Y)
// Base
translate([0,0,peDz])
difference(){
    cube([basex+2*espParede,basey+2*espParede,basez+espParede]);
    #translate([espParede,espParede,espParede])cube([basex,basey,basez]);
}
// Encaixe Cilíndrico
translate([0,0,peDz])
translate([espParede+folga10,espParede+folga10,espParede]){
    translate([pcbfuro1,pcbfuro2,0])cylinder(pcbalt,pcbr,pcbr,$fn=res);
    translate([pcbfuro1+pbcentre,pcbfuro2,0])cylinder(pcbalt,pcbr,pcbr,$fn=res);
}
// Sustentação
translate([0,0,peDz+espParede]){
    translate([-peDx-folga1,-folga1,0])cube([peDx,peDy,peDz]);
    translate([-peDx-folga1,-peDy-folga1,0])cube([peDx,peDy,peDz]);
    translate([-folga1,-peDy-folga1,0])cube([peDx,peDy,peDz]);
    translate([-folga1,-folga1,peDz-peDx-espParede])cube([peDx,peDx,peDx]);
    //-------------------------------------------------------------------------------------------------------
    translate([-peDx-folga1,basey+2*espParede-peDy+folga1,0])cube([peDx,peDy,peDz]);
    translate([-peDx-folga1,basey+2*espParede+folga1,0])cube([peDx,peDy,peDz]);
    translate([0-folga1,basey+2*espParede+folga1,0])cube([peDx,peDy,peDz]);
    translate([0-folga1,basey+2*espParede-peDy+folga1,peDz-peDx-espParede])cube([peDx,peDx,peDx]);
    //-------------------------------------------------------------------------------------------------------
    translate([basex+2*espParede+folga1,-folga1,0])cube([peDx,peDy,peDz]);
    translate([basex+2*espParede+folga1,-peDy-folga1,0])cube([peDx,peDy,peDz]);
    translate([-peDx+basex+2*espParede+folga1,-peDy-folga1,0])cube([peDx,peDy,peDz]);
    translate([-peDx+basex+2*espParede+folga1,-folga1,peDz-peDx-espParede])cube([peDx,peDx,peDx]);
    //-------------------------------------------------------------------------------------------------------
    translate([basex+2*espParede+folga1,basey+2*espParede-peDy+folga1,0])cube([peDx,peDy,peDz]);
    translate([basex+2*espParede+folga1,basey+2*espParede+folga1,0])cube([peDx,peDy,peDz]);
    translate([basex+2*espParede-peDx+folga1,basey+2*espParede+folga1,0])cube([peDx,peDy,peDz]);
    translate([basex+2*espParede-peDx+folga1,basey+2*espParede-peDy+folga1,peDz-peDx-espParede])cube([peDx,peDx,peDx]);
}
*/
// Suporte de Cima (Controle de Z)
// Base
translate([0,0,2*peDz])
difference(){
    cube([basex+2*espParede,basey+2*espParede,basez+espParede]);
    #translate([espParede,espParede,espParede])cube([basex,basey,basez]);
}
// Encaixe Cilíndrico
translate([0,0,2*peDz])
translate([espParede+folga10,espParede+folga10,espParede]){
    translate([pcbfuro1,pcbfuro2,0])cylinder(pcbalt,pcbr,pcbr,$fn=res);
    translate([pcbfuro1+pbcentre,pcbfuro2,0])cylinder(pcbalt,pcbr,pcbr,$fn=res);
}
/*
echo(2*peDz+basez+espParede);

difference(){
    translate([0,0,0]){
        translate([peDx,-fixbasey-folga1,0])cube([basex-espParede,fixbasey,2*espParede]);
        translate([peDx,basey+2*espParede+2*folga1-folga1,0])cube([basex-espParede,fixbasey,2*espParede]);
    }
    #translate([peDx+(basex-espParede)/2-25.25/2,-folga1-fixbasey/2,0])
    #funcao_2d_array_cilindros(6/2+folga1,25.25,2*espParede,2,3,1,res,"EncaixeBaseCil");
}

// Encaixe Andorinha entre Arduino e os Módulos dos Motores de Passo
translate([peDx+basex+2*espParede+folga1,peDy-folga1,0])rotate([0,0,-90])andorinha(2*peDy,30,peDy*(1.4/2),2*peDy,(2/3)*peDy,2*peDz+espParede,folga1,0);
translate([peDx+basex+2*espParede+folga1,basey+2*espParede-peDy+folga1+2*peDy,0])rotate([0,0,-90])andorinha(2*peDy,30,peDy*(1.4/2),2*peDy,(2/3)*peDy,2*peDz+espParede,folga1,0);
//
translate([2*peDy+peDx+basex+2*espParede+folga1,peDy-2*peDy,0])
translate([0,0,baseARDx+2*espParede+2*folga1])
rotate([0,90,0])funcBaseEL3DArduinoUNO(res);*/
